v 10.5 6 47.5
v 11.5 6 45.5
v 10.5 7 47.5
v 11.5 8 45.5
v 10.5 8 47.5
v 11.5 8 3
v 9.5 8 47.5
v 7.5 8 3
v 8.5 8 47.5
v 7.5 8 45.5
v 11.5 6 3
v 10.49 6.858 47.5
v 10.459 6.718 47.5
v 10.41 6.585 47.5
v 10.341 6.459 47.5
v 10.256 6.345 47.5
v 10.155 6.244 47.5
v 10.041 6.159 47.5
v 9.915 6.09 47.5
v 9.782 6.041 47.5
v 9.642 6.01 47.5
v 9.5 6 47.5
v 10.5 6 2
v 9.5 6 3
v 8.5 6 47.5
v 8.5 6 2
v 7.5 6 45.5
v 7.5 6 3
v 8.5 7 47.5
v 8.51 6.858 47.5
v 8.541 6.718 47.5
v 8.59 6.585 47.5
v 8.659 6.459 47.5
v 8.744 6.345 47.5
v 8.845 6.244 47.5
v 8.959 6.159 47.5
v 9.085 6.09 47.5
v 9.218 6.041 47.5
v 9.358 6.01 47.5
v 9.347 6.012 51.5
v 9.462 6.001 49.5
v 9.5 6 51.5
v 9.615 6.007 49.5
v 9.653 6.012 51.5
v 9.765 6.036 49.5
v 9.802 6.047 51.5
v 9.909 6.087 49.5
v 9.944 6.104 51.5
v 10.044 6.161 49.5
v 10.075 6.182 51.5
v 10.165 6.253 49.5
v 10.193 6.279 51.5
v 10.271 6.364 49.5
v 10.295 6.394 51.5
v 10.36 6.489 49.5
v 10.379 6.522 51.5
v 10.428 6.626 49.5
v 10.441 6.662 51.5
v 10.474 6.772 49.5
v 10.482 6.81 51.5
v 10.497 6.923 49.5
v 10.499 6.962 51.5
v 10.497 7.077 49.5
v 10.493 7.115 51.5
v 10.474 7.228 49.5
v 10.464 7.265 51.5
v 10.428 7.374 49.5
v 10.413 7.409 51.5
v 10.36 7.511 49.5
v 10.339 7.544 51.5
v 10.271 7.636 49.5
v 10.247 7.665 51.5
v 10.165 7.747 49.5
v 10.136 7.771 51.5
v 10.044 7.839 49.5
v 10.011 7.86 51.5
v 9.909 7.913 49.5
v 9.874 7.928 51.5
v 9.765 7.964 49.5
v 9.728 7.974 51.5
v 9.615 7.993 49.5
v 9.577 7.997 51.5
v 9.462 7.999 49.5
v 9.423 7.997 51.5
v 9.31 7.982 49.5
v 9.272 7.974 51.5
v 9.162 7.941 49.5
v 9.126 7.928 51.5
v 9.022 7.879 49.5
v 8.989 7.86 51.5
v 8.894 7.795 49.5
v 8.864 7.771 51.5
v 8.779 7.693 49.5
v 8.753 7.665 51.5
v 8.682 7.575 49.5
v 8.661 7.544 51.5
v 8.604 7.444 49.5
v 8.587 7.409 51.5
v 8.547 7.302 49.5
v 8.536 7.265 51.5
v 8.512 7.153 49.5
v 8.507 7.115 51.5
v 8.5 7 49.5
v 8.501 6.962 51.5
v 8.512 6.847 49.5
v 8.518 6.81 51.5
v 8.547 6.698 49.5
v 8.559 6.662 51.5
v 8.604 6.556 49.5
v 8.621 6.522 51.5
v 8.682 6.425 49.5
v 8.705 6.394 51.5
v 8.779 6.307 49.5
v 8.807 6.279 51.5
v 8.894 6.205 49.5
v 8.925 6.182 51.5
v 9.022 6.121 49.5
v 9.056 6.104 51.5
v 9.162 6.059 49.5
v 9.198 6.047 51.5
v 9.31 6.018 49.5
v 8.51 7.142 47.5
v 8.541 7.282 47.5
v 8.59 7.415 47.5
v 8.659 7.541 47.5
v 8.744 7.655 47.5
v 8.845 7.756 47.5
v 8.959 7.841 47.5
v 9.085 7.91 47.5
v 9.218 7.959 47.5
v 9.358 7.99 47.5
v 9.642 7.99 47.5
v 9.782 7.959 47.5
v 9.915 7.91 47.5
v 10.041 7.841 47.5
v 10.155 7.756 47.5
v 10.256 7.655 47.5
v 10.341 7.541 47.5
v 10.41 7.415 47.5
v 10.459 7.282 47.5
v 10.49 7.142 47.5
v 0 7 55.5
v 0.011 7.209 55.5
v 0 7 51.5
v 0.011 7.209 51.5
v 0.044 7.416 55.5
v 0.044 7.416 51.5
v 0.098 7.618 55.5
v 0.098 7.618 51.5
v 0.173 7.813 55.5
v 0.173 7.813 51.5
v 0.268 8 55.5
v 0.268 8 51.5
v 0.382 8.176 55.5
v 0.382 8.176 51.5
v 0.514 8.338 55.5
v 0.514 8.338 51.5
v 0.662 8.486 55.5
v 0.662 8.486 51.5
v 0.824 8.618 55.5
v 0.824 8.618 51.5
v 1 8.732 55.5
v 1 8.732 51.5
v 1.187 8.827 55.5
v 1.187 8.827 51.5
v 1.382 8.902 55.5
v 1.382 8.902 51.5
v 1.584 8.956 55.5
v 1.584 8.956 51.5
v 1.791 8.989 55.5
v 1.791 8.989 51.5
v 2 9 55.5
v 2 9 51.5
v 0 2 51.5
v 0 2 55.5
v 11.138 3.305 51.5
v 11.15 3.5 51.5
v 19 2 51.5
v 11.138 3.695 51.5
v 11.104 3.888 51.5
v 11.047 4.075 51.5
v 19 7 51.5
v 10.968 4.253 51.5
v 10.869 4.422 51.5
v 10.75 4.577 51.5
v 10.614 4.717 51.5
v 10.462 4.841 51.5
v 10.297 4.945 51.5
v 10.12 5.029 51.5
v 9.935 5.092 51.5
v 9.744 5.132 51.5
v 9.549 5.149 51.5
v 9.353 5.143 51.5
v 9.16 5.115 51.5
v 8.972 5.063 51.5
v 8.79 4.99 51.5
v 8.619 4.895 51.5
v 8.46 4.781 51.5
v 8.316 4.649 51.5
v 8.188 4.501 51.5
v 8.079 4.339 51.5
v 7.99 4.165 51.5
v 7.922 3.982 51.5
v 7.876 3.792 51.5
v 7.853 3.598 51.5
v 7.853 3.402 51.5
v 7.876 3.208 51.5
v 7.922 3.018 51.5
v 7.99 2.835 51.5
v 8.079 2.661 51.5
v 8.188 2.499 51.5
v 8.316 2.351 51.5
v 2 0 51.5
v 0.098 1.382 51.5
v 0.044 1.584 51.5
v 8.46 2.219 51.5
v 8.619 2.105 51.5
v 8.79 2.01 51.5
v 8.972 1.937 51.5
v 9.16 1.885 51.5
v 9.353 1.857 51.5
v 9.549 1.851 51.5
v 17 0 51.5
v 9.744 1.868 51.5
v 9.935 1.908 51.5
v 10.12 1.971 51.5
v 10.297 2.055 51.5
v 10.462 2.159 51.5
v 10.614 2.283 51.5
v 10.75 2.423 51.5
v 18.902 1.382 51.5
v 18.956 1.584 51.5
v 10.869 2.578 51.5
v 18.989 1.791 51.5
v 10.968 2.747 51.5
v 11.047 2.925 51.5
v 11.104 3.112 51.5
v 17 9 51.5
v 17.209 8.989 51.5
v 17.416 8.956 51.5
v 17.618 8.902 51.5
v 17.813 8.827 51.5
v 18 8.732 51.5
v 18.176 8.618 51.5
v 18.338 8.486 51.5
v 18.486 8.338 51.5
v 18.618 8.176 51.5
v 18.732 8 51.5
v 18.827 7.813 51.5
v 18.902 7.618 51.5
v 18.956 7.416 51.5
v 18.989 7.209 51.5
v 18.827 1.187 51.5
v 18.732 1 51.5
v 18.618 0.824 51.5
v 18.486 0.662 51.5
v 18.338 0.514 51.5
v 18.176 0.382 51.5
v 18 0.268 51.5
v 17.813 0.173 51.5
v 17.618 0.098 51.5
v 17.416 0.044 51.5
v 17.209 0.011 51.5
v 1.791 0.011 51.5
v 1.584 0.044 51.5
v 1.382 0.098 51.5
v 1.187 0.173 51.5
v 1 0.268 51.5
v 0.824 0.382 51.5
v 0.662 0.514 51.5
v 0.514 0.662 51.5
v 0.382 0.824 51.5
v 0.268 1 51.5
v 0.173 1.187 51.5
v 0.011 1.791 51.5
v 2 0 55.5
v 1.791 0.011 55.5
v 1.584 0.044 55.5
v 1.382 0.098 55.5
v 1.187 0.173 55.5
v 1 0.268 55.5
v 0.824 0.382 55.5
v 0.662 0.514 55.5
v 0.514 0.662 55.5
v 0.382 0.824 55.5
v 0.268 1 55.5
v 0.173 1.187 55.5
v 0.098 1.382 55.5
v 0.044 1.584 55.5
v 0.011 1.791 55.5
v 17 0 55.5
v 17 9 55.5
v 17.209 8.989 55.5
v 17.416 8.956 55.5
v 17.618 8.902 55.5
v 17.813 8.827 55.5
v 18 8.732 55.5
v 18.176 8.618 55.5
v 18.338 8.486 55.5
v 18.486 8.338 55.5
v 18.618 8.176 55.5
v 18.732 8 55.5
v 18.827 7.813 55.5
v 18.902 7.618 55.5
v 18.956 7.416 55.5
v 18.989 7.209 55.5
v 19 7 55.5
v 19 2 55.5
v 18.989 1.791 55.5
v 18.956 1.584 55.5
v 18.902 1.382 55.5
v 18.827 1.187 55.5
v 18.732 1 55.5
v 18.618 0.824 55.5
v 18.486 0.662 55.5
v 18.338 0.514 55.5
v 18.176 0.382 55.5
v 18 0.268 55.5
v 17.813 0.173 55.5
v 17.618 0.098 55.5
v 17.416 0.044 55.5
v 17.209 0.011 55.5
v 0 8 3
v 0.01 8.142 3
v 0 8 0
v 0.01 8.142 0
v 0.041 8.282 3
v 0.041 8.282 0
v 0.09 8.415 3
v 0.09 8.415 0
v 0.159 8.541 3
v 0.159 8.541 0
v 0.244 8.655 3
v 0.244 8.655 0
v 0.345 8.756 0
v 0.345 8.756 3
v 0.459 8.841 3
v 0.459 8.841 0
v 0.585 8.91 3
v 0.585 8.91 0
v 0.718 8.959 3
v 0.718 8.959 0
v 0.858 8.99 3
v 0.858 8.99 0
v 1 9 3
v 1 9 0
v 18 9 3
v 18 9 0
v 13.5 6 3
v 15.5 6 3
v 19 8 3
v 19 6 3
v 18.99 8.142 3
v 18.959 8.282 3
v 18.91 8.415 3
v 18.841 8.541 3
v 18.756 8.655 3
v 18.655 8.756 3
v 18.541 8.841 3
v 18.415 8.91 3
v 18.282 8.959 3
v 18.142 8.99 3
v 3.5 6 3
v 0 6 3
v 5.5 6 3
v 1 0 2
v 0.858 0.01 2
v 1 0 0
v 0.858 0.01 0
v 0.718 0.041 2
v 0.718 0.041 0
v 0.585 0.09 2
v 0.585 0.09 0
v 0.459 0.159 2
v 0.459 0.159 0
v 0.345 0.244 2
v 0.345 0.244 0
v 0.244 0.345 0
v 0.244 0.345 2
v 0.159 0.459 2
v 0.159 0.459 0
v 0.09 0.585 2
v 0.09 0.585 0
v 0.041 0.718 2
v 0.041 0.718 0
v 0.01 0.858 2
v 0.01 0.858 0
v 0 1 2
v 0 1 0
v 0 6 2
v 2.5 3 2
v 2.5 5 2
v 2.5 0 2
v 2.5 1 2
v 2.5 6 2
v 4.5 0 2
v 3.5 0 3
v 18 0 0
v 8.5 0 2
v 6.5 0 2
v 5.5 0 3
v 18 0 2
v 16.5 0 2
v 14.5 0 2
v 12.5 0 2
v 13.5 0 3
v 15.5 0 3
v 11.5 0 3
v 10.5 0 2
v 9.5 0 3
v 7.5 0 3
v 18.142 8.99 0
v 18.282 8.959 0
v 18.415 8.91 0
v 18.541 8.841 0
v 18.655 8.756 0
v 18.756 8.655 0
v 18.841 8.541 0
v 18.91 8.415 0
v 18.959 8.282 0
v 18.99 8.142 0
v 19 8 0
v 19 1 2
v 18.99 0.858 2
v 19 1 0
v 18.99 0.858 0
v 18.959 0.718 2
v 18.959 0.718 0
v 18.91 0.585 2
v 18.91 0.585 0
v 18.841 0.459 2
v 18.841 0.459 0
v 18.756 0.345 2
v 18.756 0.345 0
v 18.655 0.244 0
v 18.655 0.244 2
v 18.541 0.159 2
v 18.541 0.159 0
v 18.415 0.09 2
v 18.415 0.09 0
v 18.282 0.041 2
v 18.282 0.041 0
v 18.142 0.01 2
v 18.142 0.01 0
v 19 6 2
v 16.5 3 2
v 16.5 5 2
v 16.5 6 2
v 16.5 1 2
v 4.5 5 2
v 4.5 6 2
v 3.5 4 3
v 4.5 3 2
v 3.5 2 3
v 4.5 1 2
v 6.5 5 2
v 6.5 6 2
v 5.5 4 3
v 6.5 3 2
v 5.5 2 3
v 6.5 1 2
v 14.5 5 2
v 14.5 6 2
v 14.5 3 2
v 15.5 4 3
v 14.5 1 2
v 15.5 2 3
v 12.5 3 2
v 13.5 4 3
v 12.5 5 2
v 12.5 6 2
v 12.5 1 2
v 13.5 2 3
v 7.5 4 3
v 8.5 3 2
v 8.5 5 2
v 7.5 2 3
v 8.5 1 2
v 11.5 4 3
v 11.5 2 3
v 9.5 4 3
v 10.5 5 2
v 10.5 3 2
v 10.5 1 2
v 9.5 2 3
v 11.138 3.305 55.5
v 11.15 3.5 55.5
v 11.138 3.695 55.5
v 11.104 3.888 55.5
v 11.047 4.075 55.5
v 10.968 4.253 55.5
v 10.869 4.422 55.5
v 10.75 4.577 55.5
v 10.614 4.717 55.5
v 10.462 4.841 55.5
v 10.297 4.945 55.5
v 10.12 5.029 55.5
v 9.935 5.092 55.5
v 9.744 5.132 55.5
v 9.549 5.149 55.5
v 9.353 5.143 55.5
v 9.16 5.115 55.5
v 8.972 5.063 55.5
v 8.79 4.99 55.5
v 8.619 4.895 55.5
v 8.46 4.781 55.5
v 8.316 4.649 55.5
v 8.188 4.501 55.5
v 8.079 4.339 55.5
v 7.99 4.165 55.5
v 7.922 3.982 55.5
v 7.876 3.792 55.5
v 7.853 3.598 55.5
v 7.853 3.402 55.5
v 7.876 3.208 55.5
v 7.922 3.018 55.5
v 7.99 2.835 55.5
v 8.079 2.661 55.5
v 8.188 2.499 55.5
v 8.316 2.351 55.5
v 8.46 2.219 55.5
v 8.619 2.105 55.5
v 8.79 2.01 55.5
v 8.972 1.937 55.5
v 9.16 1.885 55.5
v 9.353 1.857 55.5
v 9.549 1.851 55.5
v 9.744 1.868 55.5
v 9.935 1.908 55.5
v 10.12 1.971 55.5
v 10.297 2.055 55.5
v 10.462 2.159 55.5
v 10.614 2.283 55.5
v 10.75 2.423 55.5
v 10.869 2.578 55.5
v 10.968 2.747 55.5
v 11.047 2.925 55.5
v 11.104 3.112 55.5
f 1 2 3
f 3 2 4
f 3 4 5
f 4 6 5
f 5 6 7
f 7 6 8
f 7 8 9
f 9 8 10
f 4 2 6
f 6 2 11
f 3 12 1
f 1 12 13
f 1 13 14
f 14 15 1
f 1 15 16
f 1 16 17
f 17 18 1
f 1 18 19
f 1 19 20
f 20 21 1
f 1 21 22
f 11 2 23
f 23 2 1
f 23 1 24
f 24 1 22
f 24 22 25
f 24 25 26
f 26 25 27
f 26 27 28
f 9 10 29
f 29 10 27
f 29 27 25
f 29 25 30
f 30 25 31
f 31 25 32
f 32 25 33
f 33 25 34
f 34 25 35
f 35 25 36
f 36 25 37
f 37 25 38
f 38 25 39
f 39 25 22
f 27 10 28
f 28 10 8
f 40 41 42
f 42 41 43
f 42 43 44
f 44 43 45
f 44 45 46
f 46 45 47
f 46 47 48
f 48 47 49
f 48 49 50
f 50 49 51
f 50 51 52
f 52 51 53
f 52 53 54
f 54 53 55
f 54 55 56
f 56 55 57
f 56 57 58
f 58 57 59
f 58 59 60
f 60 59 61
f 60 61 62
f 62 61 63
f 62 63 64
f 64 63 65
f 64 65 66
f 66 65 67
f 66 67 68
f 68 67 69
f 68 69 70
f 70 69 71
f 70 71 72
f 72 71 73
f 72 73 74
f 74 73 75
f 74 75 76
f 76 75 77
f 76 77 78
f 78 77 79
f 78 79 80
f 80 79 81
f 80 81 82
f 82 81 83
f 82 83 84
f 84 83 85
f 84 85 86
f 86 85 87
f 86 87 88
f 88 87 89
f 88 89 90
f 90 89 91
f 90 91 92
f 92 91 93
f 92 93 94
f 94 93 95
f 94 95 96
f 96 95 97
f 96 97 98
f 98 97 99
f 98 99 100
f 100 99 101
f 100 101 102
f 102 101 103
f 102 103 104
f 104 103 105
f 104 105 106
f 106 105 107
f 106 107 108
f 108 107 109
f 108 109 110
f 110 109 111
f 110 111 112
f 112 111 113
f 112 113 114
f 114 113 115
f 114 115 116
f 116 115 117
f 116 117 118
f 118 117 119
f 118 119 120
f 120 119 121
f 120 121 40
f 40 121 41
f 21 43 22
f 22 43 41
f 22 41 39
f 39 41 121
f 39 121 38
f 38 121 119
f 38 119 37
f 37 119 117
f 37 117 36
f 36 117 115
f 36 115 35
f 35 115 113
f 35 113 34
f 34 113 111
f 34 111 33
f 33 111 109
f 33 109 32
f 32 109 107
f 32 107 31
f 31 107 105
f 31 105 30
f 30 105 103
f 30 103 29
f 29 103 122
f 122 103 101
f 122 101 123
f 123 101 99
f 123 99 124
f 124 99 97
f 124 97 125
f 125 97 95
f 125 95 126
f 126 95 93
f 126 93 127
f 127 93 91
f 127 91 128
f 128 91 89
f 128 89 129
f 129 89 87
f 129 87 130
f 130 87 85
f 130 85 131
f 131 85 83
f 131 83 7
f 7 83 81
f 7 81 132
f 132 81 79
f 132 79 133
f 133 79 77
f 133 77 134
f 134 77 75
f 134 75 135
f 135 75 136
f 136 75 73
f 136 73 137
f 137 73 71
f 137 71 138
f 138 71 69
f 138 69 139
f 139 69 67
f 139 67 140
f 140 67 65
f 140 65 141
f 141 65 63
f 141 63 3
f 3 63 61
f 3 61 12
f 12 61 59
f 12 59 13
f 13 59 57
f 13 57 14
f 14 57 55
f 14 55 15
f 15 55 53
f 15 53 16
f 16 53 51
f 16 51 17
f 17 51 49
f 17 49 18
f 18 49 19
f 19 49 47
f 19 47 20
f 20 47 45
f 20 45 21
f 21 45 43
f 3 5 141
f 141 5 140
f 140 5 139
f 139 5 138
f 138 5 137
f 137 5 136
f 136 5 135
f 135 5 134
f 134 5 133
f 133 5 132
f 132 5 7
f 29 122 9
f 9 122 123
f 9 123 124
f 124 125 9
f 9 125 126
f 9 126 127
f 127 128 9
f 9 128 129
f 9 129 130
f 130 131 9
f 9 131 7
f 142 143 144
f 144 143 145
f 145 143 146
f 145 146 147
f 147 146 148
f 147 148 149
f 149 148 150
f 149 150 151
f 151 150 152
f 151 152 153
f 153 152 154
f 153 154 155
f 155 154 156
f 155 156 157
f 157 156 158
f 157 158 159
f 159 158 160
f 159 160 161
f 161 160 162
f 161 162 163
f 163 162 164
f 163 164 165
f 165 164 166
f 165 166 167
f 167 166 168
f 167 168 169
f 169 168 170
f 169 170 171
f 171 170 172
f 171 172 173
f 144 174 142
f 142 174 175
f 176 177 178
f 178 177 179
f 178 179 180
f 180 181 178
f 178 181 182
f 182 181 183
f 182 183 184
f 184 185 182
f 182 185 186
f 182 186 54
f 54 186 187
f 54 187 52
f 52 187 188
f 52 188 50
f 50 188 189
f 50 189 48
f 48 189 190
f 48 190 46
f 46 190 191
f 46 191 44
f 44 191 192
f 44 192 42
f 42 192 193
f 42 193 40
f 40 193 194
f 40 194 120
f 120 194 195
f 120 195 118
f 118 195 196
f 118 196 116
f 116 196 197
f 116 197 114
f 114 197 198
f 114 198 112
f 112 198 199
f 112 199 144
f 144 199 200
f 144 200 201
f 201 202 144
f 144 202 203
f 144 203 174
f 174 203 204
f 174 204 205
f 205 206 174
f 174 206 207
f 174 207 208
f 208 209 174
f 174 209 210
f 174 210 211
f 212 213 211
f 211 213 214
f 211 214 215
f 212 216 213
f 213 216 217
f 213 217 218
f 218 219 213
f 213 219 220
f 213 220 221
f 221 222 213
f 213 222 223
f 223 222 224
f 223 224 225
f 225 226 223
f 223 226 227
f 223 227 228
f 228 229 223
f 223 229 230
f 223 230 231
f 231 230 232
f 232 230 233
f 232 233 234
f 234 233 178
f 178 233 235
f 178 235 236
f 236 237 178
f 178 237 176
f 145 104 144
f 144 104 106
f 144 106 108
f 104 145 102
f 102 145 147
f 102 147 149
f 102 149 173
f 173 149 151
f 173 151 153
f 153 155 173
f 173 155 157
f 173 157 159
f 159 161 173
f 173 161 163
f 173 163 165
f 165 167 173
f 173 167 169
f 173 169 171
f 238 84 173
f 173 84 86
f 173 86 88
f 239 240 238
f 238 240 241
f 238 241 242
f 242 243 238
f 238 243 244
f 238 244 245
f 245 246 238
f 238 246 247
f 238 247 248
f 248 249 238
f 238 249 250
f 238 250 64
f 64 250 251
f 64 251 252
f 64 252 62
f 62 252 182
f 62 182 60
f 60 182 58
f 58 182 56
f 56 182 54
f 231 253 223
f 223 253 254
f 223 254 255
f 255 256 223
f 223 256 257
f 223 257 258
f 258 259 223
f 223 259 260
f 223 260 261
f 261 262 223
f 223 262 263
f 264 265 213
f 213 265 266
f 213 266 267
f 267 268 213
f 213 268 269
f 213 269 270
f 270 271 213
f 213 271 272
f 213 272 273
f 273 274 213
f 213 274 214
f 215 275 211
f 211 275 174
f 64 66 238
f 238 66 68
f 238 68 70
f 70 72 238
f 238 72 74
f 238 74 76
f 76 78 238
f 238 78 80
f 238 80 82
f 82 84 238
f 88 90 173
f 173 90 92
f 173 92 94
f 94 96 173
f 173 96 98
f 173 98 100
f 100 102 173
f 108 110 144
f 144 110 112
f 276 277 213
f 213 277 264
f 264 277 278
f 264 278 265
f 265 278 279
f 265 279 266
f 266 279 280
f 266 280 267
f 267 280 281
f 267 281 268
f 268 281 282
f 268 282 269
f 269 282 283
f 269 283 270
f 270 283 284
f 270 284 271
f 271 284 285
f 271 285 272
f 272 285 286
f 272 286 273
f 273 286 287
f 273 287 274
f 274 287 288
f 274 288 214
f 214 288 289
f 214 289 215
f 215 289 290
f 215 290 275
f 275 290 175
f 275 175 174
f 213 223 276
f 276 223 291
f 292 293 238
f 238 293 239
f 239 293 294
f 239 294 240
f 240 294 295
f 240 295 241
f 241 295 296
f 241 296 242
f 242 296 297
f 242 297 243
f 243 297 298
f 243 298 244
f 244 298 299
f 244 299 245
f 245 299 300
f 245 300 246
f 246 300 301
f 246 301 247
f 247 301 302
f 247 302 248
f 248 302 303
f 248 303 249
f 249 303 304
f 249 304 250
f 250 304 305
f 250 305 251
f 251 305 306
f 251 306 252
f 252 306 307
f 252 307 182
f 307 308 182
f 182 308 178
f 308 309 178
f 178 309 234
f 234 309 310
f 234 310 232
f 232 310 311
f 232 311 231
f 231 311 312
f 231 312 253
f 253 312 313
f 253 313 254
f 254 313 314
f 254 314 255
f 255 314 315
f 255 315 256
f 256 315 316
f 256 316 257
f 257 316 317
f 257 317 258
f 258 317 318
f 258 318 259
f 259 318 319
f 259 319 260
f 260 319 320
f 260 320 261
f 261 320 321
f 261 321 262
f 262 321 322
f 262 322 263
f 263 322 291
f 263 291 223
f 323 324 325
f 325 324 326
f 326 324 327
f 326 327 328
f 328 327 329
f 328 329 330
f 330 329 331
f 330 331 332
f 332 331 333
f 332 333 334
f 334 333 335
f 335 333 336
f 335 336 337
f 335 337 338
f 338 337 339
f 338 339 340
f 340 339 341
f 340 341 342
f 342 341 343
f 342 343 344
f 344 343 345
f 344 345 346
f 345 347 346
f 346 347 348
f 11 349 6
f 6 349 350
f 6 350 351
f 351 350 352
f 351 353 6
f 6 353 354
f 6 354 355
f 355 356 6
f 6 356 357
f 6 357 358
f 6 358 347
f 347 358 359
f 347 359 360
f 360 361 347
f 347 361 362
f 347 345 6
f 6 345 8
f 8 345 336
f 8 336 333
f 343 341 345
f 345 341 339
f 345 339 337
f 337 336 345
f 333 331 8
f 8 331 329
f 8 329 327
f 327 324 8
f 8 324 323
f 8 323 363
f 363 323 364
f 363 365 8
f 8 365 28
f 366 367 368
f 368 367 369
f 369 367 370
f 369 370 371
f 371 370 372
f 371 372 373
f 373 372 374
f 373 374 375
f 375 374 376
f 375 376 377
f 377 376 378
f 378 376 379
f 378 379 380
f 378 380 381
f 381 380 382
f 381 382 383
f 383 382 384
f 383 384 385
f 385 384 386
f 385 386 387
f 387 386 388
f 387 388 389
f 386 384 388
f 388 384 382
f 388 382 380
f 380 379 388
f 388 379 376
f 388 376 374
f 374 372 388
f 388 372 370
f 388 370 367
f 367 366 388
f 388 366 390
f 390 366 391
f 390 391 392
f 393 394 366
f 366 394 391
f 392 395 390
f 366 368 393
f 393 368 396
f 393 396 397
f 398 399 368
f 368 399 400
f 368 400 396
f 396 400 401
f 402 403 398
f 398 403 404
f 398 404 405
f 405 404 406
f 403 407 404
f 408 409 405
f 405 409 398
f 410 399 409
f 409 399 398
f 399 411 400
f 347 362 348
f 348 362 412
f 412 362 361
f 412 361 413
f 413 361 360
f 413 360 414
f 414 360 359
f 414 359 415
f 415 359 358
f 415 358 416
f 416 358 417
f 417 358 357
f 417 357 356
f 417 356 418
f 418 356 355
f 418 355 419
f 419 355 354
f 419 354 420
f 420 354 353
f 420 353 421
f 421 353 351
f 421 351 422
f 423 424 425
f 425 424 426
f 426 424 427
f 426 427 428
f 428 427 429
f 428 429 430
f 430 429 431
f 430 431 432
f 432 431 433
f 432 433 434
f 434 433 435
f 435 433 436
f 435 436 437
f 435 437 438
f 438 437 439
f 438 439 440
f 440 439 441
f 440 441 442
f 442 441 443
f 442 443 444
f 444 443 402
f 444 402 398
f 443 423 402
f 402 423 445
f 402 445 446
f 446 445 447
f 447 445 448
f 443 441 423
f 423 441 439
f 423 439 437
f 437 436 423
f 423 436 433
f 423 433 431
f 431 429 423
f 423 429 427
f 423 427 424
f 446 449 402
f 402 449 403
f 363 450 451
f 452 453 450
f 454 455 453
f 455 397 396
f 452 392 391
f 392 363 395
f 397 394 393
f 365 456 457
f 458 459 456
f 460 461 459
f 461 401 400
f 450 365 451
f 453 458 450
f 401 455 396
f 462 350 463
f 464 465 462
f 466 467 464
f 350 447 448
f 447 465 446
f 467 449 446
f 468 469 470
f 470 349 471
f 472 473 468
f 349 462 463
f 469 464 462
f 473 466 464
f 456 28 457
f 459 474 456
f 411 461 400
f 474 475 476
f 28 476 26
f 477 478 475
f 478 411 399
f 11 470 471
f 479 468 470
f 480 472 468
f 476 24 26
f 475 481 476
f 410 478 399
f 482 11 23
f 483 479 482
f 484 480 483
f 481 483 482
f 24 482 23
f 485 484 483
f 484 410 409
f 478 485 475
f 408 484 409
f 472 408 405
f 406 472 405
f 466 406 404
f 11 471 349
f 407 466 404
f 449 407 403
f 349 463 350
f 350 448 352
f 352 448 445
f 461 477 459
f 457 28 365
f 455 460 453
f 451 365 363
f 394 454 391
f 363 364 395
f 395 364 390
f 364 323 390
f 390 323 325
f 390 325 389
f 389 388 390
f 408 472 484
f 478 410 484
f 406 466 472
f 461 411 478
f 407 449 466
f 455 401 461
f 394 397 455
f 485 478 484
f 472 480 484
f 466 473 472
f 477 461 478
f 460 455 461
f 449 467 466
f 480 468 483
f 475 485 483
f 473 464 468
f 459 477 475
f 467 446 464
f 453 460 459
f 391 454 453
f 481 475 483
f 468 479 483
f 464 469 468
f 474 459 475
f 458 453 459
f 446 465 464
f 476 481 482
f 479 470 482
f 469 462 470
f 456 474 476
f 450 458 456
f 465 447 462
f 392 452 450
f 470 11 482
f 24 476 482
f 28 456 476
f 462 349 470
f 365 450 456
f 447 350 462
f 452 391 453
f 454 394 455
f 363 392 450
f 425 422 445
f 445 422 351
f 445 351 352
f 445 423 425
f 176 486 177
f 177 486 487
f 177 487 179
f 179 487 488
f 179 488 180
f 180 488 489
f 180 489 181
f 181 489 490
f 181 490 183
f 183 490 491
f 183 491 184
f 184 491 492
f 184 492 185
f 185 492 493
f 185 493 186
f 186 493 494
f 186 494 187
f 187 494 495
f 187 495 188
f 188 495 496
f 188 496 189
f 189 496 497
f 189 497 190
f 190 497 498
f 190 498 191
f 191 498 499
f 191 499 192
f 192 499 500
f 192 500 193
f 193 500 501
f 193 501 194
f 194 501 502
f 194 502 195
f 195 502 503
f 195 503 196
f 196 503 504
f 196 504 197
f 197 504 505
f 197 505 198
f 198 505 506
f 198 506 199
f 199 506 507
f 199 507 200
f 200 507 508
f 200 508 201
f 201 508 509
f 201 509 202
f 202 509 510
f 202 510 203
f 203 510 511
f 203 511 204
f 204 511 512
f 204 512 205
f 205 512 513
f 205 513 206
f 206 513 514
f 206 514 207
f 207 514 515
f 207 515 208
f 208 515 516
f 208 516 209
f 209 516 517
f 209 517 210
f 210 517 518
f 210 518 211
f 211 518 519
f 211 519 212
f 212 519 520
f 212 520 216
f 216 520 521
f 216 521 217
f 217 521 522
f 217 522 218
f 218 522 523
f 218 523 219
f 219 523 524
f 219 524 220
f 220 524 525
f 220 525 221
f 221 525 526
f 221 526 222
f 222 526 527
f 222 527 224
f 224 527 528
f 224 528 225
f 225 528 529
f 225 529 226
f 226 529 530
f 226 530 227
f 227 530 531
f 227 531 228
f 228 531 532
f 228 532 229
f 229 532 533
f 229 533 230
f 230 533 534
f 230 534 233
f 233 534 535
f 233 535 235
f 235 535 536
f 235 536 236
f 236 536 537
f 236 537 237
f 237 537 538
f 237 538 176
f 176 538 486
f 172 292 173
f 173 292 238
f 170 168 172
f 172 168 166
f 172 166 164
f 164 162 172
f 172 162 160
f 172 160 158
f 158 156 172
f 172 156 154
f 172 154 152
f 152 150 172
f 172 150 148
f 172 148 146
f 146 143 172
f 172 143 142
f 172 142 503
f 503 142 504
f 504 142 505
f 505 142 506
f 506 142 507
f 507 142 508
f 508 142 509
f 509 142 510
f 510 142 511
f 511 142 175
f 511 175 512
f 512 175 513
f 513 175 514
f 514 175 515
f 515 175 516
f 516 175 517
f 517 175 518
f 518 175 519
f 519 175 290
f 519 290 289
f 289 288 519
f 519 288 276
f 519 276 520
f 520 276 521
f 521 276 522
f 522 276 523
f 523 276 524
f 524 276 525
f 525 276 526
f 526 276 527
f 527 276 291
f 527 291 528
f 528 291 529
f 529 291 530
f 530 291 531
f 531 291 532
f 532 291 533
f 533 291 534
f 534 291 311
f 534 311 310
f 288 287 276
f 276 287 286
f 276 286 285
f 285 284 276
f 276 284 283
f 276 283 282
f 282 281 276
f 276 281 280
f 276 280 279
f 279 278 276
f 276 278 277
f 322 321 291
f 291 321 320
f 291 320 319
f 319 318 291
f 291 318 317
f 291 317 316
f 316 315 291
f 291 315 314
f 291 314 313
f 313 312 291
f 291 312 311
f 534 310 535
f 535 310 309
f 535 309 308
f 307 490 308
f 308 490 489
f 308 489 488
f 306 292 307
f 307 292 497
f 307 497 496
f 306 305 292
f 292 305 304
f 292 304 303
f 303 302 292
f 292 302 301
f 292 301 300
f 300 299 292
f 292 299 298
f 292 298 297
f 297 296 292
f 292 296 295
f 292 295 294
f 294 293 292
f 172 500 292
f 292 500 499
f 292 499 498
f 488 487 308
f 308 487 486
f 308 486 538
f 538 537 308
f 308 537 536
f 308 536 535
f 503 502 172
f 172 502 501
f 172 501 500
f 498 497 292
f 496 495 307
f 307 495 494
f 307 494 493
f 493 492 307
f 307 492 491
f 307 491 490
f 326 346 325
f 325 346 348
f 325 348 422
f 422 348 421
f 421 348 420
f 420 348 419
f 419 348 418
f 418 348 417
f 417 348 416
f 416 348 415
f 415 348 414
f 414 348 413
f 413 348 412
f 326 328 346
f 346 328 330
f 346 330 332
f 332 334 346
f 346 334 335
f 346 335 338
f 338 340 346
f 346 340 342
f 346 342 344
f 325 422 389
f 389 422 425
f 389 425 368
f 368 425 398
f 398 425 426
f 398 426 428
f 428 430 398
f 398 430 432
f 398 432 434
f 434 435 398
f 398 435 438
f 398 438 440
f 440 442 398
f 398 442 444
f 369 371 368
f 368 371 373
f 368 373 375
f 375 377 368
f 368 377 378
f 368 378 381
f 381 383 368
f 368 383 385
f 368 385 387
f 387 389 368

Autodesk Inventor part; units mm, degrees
ref_plane "YZ Plane" through (0, 0, 0) normal (1, 0, 0) x (0, 1, 0)
ref_plane "XZ Plane" through (0, 0, 0) normal (0, 1, 0) x (-1, 0, 0)
ref_plane "XY Plane" through (0, 0, 0) normal (0, 0, 1) x (1, 0, 0)
sketch "Sketch1" plane through (0, 0, 0) normal (0, 0, 1) x (1, 0, 0)
  line L0 (0, 0) -> (19, 0)
  line L1 (19, 0) -> (19, 9)
  line L2 (19, 9) -> (0, 9)
  line L3 (0, 9) -> (0, 0)
  point P0 (9.5, 9)
  dimension "d0" = 19
  dimension "d1" = 9
extrude "Extrusion1" add sketch "Sketch1" along normal blind 3
sketch "Sketch2" plane through (0, 0, 3) normal (0, 0, 1) x (1, 0, 0)
  line L0 (19, 9) -> (0, 9) projected
  circle A0 centre (9.5, 7) radius 1
  point P0 (0, 0)
  point P1 (9.5, 9)
  dimension "d4" = 2
  dimension "d5" = 2
extrude "Extrusion2" add sketch "Sketch2" along normal blind 1.5
sketch "Sketch6" plane through (9.5, 7, 4.5) normal (0, 0, 1) x (1, 0, 0)
  circle A0 centre (0, 0) radius 1 projected
  line L0 (2, -1) -> (-2, -1)
  line L1 (-2, -1) -> (-2, 1)
  line L2 (-2, 1) -> (2, 1)
  line L3 (2, 1) -> (2, -1)
  line L4 (2, -1) -> (-2, 1) construction
  line L5 (-2, -1) -> (2, 1) construction
  point P0 (-9.5, -7)
  dimension "d13" = 4
extrude "Extrusion5" add sketch "Sketch6" along normal blind 47
sketch "Sketch7" plane through (9.5, 7, 51.5) normal (0, 0, 1) x (1, 0, 0)
  circle A0 centre (0, 0) radius 1 projected
  line L0 (-9.5, -7) -> (9.5, -7) projected
  line L1 (9.5, -7) -> (9.5, 2) projected
  line L2 (9.5, 2) -> (-9.5, 2) projected
  line L3 (-9.5, 2) -> (-9.5, -7) projected
  arc A1 (0, -1) -> (0, 1) centre (0, 0) ccw projected
  arc A2 (0, 1) -> (0, -1) centre (0, 0) ccw projected
extrude "Extrusion6" add sketch "Sketch7" along normal blind 4 contours A0 | L3 L2 L1 L0
sketch "Sketch8" plane through (9.5, 7, 55.5) normal (0, 0, 1) x (1, 0, 0)
  line L0 (-9.5, -7) -> (9.5, -7) projected
  line L1 (9.5, -7) -> (9.5, 2) projected
  line L2 (9.5, 2) -> (-9.5, 2) projected
  line L3 (-9.5, 2) -> (-9.5, -7) projected
  circle A0 centre (0, -3.5) radius 1.65
  dimension "d18" = 3.3
  dimension "d66" = 5.5
extrude "Extrusion7" cut sketch "Sketch8" against normal blind 4 contours A0
sketch "Sketch10" plane through (0, 0, 0) normal (-1, 0, 0) x (0, 0, 1)
  line L0 (0, 0) -> (3, 0) projected
  line L1 (3, 9) -> (3, 0) projected
  line L2 (3, 0) -> (2, 0)
  line L3 (2, 0) -> (2, 6)
  line L4 (2, 6) -> (3, 6)
  line L5 (3, 6) -> (3, 0)
  line L6 (3, 0) -> (2, 1)
  line L7 (3, 0) -> (4.4142, 0) construction
  line L8 (2, 1) -> (3, 2)
  line L9 (3, 0) -> (3, 9) projected
  line L10 (3, 2) -> (2, 3)
  line L11 (2, 3) -> (3, 4)
  line L12 (2, 5) -> (3, 4)
  line L13 (2, 5) -> (3, 6)
  dimension "d23" = 1
  dimension "d24" = 6
  dimension "d25" = 135
  dimension "d26" = 90
extrude "Extrusion8" cut sketch "Sketch10" against normal up to next contours L6 L8 L1 | L10 L11 L1 | L12 L13 L1
sketch "Sketch11" plane through (0, 0, 0) normal (0, -1, 0) x (1, 0, 0)
  line L0 (0, 3) -> (9.5, 3) projected
  line L1 (0, 3) -> (19, 3)
  line L2 (19, 3) -> (19, 2)
  line L3 (19, 2) -> (8.5, 2)
  line L4 (0, 2) -> (0, 3)
  line L5 (0, 3) -> (0, 2) projected
  line L6 (0, 3) -> (1.4142, 3) construction
  line L7 (19, 3) -> (0, 3) projected
  line L8 (9.5, 3) -> (8.5, 2)
  line L9 (9.5, 3) -> (10.9142, 3) construction
  line L10 (10.5, 2) -> (8.5, 2)
  line L11 (9.5, 3) -> (10.5, 2)
  line L12 (10.5, 2) -> (8.5, 2)
  line L13 (8.5, 2) -> (0, 2)
  line L14 (7.5, 3) -> (8.5, 2)
  line L15 (8.5, 2) -> (6.5, 2)
  line L16 (7.5, 3) -> (6.5, 2)
  line L17 (5.5, 3) -> (6.5, 2)
  line L18 (6.5, 2) -> (4.5, 2)
  line L19 (5.5, 3) -> (4.5, 2)
  line L20 (3.5, 3) -> (4.5, 2)
  line L21 (4.5, 2) -> (2.5, 2)
  line L22 (3.5, 3) -> (2.5, 2)
  line L23 (12.5, 2) -> (10.5, 2)
  line L24 (11.5, 3) -> (12.5, 2)
  line L25 (11.5, 3) -> (10.5, 2)
  line L26 (14.5, 2) -> (12.5, 2)
  line L27 (13.5, 3) -> (14.5, 2)
  line L28 (13.5, 3) -> (12.5, 2)
  line L29 (16.5, 2) -> (14.5, 2)
  line L30 (15.5, 3) -> (16.5, 2)
  line L31 (15.5, 3) -> (14.5, 2)
  point P0 (0, 0)
  dimension "d36" = 10
  dimension "d30" = 135
  dimension "d33" = 2
  dimension "d40" = 2
extrude "Extrusion9" cut sketch "Sketch11" against normal blind 6 contours L0 L22 L13 L4 | L0 L19 L20 | L0 L16 L17 | L0 L8 L14 | L1 L25 L11 | L1 L28 L24 | L1 L31 L27 | L1 L2 L3 L30
fillet "Fillet2" radius 1 4 edges at (19, 0, 1) (19, 9, 1.5) (0, 0, 1) (0, 9, 1.5)
fillet "Fillet3" radius 2 4 edges at (19, 0, 53.5) (19, 9, 53.5) (0, 0, 53.5) (0, 9, 53.5)
extrude "Extrusion10" add sketch "Sketch6" against normal up to surface (1.5 mm away) contours A0 L2 L3 L0 | A0 L0 L1 L2
sketch "Sketch12" plane through (9.5, 7, 51.5) normal (0, 0, -1) x (-1, 0, 0)
  circle A0 centre (0, 0) radius 1 projected
  line L0 (-2, 1) -> (-2, -1) projected
  line L1 (-2, -1) -> (2, -1) projected
  line L2 (2, 1) -> (-2, 1) projected
  line L3 (2, -1) -> (2, 1) projected
  point P0 (9.5, -7)
extrude "Extrusion11" cut sketch "Sketch12" along normal blind 4 contours A0 L2 L3 L1 | A0 L1 L0 L2
chamfer "Chamfer3" distance 2 distance2 1 1 edges at (7.5, 7, 47.5) measured on face at (7.5, 7.3333, 32.6667)
chamfer "Chamfer4" distance 2 distance2 1 1 edges at (11.5, 7, 47.5) measured on face at (11.5, 6.6667, 32.6667)
properties part number "Clamp-part1-Base9x19mm-narrowTOP-maxSample40mm"
